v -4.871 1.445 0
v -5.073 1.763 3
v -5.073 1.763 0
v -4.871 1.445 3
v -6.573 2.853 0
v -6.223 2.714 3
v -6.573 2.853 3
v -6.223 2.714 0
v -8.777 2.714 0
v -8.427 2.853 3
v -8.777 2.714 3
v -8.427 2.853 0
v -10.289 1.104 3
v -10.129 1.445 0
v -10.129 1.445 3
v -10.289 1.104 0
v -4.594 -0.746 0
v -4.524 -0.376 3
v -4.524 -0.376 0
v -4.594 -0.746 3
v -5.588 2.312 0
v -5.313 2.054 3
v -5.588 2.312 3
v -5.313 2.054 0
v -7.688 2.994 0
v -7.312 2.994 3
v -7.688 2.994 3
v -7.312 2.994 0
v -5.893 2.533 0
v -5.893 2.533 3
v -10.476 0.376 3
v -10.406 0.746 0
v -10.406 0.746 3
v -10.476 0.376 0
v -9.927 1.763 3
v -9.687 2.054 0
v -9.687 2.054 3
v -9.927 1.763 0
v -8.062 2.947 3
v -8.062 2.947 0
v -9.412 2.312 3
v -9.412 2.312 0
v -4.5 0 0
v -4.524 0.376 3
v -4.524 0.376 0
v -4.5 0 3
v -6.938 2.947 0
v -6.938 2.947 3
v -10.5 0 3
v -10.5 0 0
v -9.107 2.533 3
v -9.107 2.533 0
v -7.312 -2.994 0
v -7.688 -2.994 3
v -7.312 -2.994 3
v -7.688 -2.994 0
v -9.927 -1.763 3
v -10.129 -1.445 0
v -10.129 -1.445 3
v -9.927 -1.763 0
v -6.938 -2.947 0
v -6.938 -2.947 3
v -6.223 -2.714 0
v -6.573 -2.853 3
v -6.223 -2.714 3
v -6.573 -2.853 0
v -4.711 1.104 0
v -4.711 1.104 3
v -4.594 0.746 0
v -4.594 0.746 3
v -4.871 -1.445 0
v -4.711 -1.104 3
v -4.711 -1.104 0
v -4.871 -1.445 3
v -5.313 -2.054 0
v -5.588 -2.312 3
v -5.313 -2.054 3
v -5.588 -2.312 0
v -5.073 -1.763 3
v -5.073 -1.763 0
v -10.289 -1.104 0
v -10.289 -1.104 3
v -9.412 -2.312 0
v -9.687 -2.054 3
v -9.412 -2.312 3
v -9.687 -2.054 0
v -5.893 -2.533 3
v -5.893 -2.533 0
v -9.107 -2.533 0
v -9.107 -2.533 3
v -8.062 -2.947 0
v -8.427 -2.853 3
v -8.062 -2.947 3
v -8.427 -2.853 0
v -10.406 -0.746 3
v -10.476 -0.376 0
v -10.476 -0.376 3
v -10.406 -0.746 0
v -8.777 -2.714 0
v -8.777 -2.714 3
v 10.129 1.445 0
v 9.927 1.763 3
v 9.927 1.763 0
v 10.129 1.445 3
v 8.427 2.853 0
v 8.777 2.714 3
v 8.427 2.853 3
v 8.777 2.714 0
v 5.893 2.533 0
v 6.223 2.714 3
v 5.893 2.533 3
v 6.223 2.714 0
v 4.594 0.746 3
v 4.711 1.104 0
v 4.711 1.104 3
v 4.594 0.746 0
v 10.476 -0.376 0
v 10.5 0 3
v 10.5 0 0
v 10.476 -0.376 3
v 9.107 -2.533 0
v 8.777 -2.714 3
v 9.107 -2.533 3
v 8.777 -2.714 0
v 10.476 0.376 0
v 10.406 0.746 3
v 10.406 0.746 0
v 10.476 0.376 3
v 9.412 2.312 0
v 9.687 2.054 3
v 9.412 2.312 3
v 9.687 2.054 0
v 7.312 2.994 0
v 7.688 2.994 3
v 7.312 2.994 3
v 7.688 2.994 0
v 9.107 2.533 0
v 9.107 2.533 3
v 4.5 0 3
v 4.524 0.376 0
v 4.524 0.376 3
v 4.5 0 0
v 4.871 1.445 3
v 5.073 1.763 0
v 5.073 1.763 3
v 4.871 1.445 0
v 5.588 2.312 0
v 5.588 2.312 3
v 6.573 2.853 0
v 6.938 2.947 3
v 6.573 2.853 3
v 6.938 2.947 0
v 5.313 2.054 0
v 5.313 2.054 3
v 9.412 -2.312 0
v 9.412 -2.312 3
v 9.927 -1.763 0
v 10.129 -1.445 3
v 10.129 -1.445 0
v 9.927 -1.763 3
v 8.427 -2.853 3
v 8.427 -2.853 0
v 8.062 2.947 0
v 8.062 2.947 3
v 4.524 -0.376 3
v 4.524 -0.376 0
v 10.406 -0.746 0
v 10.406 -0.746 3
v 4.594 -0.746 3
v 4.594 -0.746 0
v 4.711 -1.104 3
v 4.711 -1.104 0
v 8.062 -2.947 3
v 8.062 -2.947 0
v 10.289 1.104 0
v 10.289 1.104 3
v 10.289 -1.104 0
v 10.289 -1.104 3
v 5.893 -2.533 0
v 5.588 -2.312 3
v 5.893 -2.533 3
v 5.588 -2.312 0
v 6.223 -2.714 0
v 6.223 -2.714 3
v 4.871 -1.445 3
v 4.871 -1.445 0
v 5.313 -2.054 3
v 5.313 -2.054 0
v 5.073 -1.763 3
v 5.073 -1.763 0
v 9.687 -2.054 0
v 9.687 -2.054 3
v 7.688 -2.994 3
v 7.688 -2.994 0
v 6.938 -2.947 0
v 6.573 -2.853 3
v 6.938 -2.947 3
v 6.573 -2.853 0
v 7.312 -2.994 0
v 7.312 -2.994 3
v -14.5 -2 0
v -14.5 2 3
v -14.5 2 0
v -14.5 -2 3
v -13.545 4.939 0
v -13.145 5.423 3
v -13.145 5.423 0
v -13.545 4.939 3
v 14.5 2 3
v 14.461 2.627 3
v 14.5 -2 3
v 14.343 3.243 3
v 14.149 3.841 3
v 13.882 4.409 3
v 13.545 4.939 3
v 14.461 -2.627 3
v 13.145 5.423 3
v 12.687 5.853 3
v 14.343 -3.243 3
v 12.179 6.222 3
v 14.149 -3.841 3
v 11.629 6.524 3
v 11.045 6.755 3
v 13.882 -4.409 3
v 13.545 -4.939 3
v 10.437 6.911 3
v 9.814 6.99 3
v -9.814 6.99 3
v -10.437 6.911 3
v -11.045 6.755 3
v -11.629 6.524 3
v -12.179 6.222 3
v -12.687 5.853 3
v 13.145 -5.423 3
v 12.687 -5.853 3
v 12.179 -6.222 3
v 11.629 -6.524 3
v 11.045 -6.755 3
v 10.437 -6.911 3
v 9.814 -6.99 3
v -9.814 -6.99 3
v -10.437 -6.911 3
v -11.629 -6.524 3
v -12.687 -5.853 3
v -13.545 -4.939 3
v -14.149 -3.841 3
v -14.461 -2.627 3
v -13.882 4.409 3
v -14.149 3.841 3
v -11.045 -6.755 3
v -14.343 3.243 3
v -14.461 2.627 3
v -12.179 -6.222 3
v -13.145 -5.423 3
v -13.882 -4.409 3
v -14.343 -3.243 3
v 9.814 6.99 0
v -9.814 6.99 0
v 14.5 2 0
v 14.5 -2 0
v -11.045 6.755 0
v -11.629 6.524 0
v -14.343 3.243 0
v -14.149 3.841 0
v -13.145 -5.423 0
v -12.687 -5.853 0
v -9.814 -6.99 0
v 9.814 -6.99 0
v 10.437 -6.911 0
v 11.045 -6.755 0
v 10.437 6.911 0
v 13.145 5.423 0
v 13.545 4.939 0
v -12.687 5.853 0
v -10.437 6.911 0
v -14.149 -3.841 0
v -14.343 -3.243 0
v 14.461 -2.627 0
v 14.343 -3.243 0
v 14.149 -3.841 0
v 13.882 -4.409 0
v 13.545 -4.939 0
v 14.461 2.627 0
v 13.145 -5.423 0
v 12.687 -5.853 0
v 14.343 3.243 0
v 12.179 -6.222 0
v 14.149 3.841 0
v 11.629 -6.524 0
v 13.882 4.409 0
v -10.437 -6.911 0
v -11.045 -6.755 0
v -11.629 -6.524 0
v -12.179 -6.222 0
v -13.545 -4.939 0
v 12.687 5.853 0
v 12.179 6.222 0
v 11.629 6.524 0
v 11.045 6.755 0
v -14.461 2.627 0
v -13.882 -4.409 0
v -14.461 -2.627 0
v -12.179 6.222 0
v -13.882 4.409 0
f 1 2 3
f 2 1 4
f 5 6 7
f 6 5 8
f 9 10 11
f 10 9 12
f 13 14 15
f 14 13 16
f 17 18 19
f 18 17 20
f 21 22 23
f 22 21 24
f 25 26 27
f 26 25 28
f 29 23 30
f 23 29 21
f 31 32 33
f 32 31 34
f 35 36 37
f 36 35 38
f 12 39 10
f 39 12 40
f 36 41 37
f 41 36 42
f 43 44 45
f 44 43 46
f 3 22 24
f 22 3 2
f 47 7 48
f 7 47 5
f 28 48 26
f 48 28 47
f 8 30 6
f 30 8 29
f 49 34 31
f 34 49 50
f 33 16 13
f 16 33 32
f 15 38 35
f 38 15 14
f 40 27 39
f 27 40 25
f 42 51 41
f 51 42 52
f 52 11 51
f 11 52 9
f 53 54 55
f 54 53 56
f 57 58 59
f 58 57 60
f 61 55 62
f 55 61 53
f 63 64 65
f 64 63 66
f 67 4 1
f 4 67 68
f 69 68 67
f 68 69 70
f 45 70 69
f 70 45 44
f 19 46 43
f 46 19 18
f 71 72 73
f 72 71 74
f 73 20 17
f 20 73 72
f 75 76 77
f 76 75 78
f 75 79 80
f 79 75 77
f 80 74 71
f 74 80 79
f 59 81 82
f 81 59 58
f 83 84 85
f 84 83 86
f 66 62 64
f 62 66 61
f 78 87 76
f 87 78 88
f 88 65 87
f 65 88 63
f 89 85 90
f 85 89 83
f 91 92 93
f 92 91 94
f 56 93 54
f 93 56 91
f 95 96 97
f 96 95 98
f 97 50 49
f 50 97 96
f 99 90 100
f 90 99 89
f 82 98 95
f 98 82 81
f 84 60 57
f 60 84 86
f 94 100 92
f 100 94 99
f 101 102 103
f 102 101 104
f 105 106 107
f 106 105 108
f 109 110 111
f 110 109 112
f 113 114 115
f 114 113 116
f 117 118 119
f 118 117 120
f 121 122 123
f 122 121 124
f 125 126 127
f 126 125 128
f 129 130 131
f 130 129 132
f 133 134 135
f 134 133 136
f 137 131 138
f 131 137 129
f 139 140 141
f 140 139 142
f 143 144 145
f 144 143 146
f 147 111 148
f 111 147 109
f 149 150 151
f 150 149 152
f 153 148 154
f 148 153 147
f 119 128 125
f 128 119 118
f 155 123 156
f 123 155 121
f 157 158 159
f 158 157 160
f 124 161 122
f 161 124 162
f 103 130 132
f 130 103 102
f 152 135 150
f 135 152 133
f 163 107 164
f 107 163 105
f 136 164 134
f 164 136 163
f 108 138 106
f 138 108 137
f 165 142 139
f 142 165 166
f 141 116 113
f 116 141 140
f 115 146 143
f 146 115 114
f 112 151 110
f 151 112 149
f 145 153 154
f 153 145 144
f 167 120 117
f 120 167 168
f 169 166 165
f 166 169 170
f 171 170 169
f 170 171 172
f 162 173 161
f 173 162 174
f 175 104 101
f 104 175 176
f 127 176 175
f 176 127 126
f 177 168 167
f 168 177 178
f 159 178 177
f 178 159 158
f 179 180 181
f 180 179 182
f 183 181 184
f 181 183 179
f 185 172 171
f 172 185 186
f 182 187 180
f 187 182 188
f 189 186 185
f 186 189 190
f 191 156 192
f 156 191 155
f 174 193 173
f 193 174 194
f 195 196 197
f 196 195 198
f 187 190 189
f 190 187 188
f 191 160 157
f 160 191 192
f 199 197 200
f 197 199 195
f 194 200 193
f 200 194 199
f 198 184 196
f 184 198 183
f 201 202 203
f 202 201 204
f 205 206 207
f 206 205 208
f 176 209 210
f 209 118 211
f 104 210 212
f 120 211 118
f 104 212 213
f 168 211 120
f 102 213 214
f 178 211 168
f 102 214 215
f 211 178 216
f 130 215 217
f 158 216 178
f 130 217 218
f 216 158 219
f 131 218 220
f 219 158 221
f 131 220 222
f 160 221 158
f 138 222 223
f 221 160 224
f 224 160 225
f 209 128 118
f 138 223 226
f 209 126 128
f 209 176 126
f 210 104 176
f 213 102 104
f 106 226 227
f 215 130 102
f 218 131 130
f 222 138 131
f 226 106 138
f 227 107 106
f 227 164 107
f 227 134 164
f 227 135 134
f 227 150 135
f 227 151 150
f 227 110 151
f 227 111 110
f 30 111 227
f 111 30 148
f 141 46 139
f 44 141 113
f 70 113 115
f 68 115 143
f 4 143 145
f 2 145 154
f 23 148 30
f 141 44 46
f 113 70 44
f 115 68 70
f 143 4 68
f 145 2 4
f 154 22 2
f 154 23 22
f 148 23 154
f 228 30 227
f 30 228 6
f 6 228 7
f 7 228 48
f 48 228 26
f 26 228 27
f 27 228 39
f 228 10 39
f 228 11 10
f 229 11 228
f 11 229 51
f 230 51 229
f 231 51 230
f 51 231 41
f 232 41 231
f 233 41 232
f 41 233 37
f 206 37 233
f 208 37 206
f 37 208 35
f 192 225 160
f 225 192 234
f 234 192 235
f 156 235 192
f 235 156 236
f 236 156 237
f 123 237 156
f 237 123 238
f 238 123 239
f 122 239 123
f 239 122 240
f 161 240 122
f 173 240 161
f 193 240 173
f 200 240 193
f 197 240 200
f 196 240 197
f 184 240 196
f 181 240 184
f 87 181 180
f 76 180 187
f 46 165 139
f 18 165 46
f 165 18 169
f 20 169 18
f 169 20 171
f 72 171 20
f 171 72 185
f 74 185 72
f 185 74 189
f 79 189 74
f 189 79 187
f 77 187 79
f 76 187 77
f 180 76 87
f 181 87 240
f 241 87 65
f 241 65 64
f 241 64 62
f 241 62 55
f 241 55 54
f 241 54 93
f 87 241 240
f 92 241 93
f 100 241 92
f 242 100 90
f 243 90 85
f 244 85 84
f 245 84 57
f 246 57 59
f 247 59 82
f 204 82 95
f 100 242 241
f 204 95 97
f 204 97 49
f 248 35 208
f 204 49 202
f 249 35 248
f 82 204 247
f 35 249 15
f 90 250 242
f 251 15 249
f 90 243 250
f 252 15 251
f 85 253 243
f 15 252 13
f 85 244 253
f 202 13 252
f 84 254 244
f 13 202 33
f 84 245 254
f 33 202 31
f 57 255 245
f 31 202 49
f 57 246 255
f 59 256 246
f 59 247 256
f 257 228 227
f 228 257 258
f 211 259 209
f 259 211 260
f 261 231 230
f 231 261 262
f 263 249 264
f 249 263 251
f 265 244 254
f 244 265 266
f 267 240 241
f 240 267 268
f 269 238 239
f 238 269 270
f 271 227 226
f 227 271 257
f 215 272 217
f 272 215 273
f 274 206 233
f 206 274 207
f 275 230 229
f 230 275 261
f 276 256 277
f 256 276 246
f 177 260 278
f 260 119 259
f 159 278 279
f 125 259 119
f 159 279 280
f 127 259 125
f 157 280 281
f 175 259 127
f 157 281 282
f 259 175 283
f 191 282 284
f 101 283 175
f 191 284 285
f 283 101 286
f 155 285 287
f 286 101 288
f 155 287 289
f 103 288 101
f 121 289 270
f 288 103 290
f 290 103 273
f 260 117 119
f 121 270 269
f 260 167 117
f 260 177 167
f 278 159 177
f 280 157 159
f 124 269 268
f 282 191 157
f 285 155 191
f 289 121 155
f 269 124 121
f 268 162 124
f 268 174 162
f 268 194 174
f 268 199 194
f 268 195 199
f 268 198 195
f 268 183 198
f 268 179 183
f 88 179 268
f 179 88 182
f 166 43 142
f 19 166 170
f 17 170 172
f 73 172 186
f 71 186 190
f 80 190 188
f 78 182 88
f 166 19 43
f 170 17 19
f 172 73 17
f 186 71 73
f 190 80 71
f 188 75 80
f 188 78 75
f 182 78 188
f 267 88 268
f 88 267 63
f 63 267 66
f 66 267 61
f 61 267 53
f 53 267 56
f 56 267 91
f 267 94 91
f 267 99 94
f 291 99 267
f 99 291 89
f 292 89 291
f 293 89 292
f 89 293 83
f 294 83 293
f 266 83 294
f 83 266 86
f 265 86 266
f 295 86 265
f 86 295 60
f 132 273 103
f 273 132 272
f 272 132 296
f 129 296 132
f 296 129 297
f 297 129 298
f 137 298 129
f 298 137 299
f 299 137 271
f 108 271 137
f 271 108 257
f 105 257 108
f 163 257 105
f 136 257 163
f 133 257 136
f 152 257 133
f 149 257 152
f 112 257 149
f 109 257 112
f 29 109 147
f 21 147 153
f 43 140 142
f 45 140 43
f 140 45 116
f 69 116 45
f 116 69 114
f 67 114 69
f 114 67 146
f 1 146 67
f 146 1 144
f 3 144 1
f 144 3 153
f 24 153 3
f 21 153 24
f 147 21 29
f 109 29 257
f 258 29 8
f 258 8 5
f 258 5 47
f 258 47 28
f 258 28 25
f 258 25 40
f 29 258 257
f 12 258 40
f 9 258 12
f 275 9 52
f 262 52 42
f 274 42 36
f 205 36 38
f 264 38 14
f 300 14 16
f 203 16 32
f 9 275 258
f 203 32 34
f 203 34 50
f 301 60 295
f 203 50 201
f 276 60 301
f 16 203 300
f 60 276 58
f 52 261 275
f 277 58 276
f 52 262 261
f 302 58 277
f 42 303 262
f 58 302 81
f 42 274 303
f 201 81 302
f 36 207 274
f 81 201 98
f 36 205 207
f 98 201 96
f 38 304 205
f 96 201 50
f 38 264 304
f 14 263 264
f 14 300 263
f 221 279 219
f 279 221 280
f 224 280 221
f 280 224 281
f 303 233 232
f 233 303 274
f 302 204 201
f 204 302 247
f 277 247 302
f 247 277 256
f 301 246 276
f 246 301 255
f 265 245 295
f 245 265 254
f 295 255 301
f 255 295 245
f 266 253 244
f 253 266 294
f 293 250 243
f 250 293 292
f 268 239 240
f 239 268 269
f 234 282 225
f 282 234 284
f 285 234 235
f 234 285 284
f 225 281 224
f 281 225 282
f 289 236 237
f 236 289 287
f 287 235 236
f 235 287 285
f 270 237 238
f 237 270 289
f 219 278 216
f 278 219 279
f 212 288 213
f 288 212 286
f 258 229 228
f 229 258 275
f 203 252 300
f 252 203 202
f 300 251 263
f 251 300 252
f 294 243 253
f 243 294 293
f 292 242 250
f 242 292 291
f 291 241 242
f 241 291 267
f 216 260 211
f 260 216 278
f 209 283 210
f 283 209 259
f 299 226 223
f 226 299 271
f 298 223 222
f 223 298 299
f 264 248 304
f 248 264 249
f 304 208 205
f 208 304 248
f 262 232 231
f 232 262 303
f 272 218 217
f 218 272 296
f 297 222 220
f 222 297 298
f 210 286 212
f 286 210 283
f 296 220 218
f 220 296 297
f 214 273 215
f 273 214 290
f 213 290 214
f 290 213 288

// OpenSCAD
$fn = 50;


difference() {
	union() {
		translate(v = [0, 0, 0]) {
			rotate(a = [0, 0, 0]) {
				hull() {
					translate(v = [-9.5000000000, 2.0000000000, 0]) {
						rotate(a = [0, 0, 0]) {
							translate(v = [0, 0, 0]) {
								rotate(a = [0, 0, 0]) {
									cylinder(h = 3, r = 5);
								}
							}
						}
					}
					translate(v = [9.5000000000, 2.0000000000, 0]) {
						rotate(a = [0, 0, 0]) {
							translate(v = [0, 0, 0]) {
								rotate(a = [0, 0, 0]) {
									cylinder(h = 3, r = 5);
								}
							}
						}
					}
					translate(v = [-9.5000000000, -2.0000000000, 0]) {
						rotate(a = [0, 0, 0]) {
							translate(v = [0, 0, 0]) {
								rotate(a = [0, 0, 0]) {
									cylinder(h = 3, r = 5);
								}
							}
						}
					}
					translate(v = [9.5000000000, -2.0000000000, 0]) {
						rotate(a = [0, 0, 0]) {
							translate(v = [0, 0, 0]) {
								rotate(a = [0, 0, 0]) {
									cylinder(h = 3, r = 5);
								}
							}
						}
					}
				}
			}
		}
	}
	union() {
		translate(v = [-7.5000000000, 0.0000000000, 0]) {
			rotate(a = [0, 0, 0]) {
				translate(v = [0, 0, -50]) {
					rotate(a = [0, 0, 0]) {
						cylinder(h = 100, r = 3.0000000000);
					}
				}
			}
		}
		translate(v = [7.5000000000, 0.0000000000, 0]) {
			rotate(a = [0, 0, 0]) {
				translate(v = [0, 0, -50]) {
					rotate(a = [0, 0, 0]) {
						cylinder(h = 100, r = 3.0000000000);
					}
				}
			}
		}
	}
}
